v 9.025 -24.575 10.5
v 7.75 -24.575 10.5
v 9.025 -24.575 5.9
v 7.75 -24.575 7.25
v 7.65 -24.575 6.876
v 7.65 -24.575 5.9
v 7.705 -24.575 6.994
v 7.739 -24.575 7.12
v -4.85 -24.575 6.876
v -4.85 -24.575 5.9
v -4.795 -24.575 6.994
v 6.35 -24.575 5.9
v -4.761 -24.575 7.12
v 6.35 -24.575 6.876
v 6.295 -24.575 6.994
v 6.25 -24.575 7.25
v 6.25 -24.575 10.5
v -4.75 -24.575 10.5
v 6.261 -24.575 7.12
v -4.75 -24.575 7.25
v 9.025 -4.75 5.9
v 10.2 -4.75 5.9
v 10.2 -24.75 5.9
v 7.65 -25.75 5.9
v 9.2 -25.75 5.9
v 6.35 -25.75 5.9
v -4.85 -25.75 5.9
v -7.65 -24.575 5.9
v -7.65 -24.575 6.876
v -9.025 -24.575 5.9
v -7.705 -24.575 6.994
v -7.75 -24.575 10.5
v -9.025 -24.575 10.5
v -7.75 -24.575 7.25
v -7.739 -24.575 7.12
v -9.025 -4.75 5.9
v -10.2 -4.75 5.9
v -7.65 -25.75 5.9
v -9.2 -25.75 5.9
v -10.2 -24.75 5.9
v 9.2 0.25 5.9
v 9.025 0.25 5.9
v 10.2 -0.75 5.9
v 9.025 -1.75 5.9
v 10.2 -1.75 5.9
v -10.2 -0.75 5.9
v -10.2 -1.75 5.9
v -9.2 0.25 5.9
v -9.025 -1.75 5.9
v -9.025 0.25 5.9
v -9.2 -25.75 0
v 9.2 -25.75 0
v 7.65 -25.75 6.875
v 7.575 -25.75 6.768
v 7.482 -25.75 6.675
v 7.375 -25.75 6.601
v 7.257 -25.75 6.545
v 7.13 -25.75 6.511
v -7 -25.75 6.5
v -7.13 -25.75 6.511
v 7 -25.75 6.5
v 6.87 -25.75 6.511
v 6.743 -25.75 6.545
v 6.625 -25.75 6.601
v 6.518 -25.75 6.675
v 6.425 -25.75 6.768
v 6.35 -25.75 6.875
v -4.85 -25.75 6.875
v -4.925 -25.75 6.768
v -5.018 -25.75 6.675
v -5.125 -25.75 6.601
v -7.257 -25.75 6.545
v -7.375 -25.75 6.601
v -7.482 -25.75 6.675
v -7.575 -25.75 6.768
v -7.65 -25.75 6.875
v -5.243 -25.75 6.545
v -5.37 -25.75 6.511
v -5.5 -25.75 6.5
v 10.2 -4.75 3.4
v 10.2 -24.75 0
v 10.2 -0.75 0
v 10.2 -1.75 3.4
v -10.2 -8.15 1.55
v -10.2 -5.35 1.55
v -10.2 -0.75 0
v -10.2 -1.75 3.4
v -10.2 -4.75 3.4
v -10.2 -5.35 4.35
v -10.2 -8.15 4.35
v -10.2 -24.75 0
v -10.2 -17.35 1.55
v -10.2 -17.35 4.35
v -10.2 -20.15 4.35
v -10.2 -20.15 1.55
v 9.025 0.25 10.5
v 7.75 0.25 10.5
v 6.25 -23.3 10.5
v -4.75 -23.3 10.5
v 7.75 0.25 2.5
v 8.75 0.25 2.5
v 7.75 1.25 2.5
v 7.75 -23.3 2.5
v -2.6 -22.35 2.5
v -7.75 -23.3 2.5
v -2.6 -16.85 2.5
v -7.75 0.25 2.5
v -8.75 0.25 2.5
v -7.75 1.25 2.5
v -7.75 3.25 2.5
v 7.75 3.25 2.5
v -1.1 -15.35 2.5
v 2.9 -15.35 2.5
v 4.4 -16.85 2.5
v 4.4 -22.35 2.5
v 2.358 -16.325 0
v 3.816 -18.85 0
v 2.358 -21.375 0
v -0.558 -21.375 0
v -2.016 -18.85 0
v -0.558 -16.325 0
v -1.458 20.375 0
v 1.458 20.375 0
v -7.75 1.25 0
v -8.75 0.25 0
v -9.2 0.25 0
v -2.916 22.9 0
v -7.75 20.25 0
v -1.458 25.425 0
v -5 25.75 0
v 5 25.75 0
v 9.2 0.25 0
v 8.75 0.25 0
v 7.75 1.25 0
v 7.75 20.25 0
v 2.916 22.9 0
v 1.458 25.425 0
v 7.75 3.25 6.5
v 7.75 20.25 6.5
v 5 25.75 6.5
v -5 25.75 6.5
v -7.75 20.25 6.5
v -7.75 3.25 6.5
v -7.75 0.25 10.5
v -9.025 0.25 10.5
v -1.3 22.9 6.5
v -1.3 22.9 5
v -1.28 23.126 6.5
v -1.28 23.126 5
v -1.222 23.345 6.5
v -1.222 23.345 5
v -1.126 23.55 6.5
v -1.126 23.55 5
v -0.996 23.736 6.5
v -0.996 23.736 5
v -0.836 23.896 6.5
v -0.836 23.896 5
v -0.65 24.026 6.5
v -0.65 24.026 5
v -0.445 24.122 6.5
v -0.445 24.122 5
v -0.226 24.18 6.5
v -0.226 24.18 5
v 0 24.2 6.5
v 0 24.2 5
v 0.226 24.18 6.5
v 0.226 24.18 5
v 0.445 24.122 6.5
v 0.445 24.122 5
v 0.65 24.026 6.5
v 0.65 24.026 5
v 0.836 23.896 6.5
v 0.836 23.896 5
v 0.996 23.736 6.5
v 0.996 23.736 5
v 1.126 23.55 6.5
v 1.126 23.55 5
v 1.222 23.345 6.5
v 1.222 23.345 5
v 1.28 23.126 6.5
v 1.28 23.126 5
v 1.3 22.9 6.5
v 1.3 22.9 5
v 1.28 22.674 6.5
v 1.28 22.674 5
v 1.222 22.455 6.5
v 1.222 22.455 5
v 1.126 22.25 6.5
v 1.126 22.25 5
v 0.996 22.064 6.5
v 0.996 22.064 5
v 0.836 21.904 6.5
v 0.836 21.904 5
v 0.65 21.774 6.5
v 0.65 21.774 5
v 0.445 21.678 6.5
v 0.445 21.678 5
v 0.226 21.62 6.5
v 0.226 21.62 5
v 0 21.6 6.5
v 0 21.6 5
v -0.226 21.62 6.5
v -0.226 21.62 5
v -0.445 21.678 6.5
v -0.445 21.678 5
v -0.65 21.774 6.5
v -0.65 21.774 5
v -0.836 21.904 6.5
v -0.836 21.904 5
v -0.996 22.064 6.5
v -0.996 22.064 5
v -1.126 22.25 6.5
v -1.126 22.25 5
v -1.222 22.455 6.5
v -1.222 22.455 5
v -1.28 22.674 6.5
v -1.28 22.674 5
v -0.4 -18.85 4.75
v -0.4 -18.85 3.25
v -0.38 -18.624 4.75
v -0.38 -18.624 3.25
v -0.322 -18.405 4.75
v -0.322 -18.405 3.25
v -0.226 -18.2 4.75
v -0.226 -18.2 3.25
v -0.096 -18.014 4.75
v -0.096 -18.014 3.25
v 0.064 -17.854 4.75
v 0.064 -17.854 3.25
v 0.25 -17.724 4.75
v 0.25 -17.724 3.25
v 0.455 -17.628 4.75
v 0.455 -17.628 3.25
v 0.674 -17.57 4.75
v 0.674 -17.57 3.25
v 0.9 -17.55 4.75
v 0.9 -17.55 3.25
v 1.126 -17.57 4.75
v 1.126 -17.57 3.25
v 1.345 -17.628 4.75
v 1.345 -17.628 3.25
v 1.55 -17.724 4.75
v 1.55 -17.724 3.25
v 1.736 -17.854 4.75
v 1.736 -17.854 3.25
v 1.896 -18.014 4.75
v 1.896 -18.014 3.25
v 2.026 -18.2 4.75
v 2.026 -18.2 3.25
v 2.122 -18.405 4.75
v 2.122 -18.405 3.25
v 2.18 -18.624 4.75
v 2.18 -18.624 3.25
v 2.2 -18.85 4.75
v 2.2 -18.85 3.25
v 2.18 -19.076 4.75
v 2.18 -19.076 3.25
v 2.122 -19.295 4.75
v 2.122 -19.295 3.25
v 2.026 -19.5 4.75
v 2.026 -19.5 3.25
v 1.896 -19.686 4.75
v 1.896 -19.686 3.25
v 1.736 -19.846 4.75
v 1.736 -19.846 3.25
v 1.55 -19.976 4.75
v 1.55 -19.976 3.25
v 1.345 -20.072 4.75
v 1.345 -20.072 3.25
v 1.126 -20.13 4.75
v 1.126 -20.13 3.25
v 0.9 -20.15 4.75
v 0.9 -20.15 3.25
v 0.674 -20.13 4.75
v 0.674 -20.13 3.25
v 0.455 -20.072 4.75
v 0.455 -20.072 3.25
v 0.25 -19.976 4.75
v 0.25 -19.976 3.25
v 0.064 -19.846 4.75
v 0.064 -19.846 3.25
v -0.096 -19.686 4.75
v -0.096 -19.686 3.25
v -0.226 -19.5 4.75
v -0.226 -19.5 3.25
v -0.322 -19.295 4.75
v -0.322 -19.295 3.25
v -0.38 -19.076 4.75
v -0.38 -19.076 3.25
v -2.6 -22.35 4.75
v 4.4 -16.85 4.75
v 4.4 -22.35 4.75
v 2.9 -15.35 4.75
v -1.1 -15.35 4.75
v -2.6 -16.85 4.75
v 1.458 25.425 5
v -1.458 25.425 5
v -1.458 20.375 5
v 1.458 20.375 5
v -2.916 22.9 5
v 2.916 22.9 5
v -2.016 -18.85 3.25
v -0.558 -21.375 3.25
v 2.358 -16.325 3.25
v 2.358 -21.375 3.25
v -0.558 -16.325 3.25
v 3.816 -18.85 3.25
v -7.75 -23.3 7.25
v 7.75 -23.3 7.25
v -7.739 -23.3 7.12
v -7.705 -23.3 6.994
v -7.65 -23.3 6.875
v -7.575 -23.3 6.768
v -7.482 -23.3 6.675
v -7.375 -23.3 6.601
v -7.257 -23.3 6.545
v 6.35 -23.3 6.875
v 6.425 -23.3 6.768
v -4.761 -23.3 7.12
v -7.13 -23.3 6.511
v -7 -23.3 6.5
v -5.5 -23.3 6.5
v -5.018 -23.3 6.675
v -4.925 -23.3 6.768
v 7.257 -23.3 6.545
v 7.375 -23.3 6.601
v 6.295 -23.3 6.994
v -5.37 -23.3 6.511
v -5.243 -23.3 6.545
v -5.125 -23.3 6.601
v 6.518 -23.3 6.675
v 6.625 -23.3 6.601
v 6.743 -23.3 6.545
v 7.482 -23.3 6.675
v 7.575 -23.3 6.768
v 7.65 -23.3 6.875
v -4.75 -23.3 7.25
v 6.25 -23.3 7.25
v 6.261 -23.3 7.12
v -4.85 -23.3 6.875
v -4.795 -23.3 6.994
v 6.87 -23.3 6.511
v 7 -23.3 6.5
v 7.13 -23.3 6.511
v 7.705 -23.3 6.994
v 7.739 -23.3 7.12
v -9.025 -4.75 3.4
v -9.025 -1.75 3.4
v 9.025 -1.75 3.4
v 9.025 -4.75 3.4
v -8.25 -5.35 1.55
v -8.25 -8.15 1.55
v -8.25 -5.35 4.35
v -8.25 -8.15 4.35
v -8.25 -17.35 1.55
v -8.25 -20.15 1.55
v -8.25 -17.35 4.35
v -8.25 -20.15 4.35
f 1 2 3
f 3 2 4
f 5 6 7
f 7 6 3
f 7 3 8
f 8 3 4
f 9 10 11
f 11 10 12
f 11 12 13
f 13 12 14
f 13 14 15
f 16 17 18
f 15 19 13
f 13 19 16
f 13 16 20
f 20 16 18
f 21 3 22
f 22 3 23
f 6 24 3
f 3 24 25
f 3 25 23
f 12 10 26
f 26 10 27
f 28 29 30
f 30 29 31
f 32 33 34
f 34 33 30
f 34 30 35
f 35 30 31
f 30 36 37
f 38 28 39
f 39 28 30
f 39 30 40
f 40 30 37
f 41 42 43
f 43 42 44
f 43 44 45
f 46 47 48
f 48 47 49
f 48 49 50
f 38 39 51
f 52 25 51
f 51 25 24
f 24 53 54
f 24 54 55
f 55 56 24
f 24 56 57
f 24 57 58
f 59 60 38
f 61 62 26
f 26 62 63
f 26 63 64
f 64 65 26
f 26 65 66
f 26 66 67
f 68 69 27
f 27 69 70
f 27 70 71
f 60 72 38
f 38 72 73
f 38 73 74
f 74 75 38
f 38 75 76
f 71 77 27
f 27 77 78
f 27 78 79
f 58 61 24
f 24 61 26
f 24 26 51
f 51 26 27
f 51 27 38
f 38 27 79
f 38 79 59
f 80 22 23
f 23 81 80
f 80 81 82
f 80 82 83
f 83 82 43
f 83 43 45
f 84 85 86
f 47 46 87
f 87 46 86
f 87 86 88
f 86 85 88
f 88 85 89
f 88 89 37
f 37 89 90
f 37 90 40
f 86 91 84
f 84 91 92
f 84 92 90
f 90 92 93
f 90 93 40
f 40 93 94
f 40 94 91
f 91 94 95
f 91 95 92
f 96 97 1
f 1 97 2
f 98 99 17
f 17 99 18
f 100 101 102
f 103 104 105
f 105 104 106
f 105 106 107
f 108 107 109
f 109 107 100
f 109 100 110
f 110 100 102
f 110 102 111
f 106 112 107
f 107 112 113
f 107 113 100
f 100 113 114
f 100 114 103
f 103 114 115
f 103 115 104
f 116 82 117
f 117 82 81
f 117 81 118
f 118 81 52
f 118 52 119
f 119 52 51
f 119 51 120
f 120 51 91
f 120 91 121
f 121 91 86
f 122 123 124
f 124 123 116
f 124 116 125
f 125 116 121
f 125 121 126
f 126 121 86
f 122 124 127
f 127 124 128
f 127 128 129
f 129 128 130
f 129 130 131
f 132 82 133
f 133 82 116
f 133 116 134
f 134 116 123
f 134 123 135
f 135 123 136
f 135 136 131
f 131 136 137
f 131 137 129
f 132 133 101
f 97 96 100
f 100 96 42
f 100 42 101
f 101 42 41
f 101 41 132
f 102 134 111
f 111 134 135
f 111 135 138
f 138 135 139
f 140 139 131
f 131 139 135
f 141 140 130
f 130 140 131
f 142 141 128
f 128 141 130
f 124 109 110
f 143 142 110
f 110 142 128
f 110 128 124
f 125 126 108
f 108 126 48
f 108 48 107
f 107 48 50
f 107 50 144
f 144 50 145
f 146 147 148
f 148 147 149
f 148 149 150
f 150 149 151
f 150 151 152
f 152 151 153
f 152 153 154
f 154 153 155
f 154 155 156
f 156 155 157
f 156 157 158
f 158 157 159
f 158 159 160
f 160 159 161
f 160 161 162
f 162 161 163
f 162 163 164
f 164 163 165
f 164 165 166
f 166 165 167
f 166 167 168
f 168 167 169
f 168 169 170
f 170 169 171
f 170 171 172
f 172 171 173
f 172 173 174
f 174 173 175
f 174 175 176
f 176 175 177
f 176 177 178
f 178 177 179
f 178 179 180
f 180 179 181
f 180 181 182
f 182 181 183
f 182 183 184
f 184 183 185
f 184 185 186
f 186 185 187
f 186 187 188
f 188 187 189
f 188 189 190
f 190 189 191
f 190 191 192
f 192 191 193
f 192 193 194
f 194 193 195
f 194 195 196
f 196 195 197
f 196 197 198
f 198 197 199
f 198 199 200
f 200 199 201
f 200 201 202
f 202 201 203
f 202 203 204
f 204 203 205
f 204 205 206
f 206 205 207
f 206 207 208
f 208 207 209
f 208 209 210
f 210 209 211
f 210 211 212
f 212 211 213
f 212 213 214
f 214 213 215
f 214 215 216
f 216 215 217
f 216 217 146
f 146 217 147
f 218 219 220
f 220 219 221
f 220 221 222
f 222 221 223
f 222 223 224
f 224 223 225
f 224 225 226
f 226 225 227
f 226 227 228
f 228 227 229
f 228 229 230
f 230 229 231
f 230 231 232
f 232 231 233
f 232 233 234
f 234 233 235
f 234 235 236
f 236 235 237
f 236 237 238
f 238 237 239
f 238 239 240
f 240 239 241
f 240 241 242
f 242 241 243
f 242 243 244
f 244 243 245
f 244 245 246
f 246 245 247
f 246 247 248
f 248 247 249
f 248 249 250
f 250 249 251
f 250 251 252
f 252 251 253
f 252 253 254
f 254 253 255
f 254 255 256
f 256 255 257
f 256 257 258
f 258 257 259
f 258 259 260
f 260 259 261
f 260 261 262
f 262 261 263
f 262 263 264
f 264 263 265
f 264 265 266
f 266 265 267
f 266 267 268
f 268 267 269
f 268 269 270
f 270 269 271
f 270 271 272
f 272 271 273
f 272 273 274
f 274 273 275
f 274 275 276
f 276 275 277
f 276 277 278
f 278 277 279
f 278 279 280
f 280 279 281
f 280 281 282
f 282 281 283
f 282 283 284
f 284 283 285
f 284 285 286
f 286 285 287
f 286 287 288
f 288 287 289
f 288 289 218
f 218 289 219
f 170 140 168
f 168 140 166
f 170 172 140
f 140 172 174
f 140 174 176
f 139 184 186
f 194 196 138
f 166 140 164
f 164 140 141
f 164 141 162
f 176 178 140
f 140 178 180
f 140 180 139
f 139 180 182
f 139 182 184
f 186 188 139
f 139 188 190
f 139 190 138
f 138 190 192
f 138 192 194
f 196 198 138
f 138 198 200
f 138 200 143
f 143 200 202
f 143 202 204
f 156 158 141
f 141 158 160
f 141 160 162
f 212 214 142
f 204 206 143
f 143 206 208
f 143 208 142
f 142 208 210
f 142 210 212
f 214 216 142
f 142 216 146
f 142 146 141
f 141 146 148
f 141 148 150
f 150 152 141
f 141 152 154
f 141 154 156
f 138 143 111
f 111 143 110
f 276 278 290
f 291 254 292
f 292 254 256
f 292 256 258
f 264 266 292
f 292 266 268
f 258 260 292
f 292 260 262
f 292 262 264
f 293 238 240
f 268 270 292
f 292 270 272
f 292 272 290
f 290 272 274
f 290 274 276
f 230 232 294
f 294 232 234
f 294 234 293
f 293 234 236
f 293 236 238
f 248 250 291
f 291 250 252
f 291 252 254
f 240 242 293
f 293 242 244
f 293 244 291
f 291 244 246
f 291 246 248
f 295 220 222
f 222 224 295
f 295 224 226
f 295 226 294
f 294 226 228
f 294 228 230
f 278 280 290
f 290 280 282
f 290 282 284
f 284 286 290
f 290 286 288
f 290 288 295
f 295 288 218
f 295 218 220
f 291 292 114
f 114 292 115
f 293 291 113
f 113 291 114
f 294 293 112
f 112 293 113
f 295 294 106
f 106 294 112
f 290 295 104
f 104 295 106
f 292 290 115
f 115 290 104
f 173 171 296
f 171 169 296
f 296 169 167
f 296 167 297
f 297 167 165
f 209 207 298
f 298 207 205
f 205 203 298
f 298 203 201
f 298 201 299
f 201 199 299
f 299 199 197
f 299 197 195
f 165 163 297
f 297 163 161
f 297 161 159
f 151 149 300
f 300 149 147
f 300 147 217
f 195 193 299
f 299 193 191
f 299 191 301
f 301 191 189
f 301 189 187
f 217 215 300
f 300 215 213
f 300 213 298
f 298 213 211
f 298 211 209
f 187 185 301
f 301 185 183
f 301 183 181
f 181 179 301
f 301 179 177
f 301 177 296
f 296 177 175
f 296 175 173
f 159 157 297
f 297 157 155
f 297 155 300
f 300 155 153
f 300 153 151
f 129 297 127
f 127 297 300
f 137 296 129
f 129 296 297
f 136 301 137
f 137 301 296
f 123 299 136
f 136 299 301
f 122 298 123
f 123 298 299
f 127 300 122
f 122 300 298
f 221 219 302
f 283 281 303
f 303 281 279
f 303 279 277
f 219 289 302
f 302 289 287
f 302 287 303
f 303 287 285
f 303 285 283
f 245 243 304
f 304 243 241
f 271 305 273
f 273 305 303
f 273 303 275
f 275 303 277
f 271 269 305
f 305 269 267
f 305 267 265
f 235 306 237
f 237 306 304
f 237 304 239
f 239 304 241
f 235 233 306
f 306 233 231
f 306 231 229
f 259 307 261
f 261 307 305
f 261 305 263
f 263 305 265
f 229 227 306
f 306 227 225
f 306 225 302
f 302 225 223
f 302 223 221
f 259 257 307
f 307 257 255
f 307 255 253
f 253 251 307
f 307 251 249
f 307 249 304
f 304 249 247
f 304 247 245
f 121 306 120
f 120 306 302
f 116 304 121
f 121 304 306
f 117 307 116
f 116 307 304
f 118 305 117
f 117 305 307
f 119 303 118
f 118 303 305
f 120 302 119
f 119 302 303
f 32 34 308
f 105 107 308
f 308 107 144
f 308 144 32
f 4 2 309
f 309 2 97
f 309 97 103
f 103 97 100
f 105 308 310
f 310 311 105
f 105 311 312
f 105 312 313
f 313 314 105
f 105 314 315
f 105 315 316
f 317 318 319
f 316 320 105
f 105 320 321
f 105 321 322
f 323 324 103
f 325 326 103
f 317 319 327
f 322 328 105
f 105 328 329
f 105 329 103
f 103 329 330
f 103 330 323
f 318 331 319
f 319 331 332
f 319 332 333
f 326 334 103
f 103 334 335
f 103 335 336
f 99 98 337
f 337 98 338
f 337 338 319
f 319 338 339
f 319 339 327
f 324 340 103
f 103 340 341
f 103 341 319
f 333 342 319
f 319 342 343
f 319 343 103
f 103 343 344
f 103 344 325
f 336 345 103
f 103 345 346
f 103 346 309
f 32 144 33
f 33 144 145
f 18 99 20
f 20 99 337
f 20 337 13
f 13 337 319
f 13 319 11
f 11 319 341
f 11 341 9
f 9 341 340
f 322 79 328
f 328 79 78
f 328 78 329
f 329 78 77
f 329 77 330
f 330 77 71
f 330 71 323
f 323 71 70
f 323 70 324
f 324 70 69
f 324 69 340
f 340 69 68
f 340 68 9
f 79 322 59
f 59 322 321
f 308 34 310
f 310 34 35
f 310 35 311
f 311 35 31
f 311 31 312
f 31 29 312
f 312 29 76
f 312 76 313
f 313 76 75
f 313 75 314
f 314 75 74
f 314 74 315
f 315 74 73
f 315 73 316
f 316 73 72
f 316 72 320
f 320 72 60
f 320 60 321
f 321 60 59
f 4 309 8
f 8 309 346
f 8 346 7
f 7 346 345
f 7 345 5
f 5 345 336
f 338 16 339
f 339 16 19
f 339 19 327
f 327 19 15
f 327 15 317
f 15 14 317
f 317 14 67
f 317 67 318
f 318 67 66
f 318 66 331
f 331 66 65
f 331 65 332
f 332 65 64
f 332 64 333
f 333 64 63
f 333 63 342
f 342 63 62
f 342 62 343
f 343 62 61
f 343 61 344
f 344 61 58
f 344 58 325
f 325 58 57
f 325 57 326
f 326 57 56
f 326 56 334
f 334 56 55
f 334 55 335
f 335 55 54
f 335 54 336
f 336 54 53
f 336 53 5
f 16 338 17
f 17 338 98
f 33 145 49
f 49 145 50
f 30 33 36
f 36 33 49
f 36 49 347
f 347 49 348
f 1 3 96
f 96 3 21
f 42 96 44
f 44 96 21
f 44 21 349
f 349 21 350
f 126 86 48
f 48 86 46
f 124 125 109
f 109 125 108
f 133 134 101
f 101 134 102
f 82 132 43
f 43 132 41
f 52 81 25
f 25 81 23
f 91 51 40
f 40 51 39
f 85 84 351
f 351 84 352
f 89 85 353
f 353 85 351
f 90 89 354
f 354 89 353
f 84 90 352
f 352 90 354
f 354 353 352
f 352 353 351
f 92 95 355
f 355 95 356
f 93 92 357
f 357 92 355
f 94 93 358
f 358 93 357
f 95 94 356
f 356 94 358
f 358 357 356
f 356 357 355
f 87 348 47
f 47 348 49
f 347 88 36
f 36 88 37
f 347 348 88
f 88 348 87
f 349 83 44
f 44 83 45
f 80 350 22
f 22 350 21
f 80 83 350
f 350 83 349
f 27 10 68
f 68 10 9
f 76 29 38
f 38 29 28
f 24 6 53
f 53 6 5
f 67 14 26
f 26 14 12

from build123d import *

# Parameters (mm, degrees)
SKETCH1_R           = 1.3
BOSS_EXTRUDE1_DEPTH = 2.5
SKETCH2_R           = 1.3
BOSS_EXTRUDE2_DEPTH = 4
SKETCH3_R           = 1.3
BOSS_EXTRUDE3_DEPTH = 2.25
CUT_EXTRUDE1_DEPTH  = 5
CUT_EXTRUDE2_DEPTH  = 3.25
BOSS_EXTRUDE4_DEPTH = 8
CUT_EXTRUDE3_REACH  = 55.54
CUT_EXTRUDE4_DEPTH  = 4.6
CHAMFER1_SIZE       = 1
SKETCH10_W          = 2.8
SKETCH10_H          = 2.8
CUT_EXTRUDE6_DEPTH  = 1.95
SKETCH12_W          = 1.175
SKETCH12_H          = 3
CUT_EXTRUDE7_DEPTH  = 2.5
BOSS_EXTRUDE6_START = 1.175
BOSS_EXTRUDE6_DEPTH = 1.175


with BuildPart() as part:
    # Sketch1 → Boss-Extrude1 (new body)
    with BuildSketch(Plane.XY):
        Polygon((-5, 25.75), (5, 25.75), (7.75, 20.25), (7.75, 0.25), (10.2, 0.25), (10.2, -25.75), (-10.2, -25.75), (-10.2, 0.25), (-7.75, 0.25), (-7.75, 20.25), align=None)
        with Locations((0, 22.9)):
            Circle(SKETCH1_R, mode=Mode.SUBTRACT)
        with Locations((0.9, -18.85)):
            Circle(SKETCH1_R, mode=Mode.SUBTRACT)
    extrude(amount=BOSS_EXTRUDE1_DEPTH)

    # Sketch2 → Boss-Extrude2 (add)
    with BuildSketch(Plane.XY.offset(2.5)):
        Polygon((-7.75, 3.25), (7.75, 3.25), (7.75, 20.25), (5, 25.75), (-5, 25.75), (-7.75, 20.25), align=None)
        with Locations((0, 22.9)):
            Circle(SKETCH2_R, mode=Mode.SUBTRACT)
    extrude(amount=BOSS_EXTRUDE2_DEPTH)

    # Sketch3 → Boss-Extrude3 (add)
    with BuildSketch(Plane.XY.offset(2.5)):
        Polygon((-1.1, -15.35), (2.9, -15.35), (4.4, -16.85), (4.4, -22.35), (-2.6, -22.35), (-2.6, -16.85), align=None)
        with Locations((0.9, -18.85)):
            Circle(SKETCH3_R, mode=Mode.SUBTRACT)
    extrude(amount=BOSS_EXTRUDE3_DEPTH)

    # Sketch4 → Cut-Extrude1 (cut)
    with BuildSketch(Plane(origin=(0, 0, 0), x_dir=(-1, 0, 0), z_dir=(0, 0, -1))):
        Polygon((2.915618859, 22.9), (1.45780943, 25.425), (-1.45780943, 25.425), (-2.915618859, 22.9), (-1.45780943, 20.375), (1.45780943, 20.375), align=None)
    extrude(amount=-CUT_EXTRUDE1_DEPTH, mode=Mode.SUBTRACT)

    # Sketch5 → Cut-Extrude2 (cut)
    with BuildSketch(Plane(origin=(0, 0, 0), x_dir=(-1, 0, 0), z_dir=(0, 0, -1))):
        Polygon((2.015618859, -18.85), (0.55780943, -16.325), (-2.35780943, -16.325), (-3.815618859, -18.85), (-2.35780943, -21.375), (0.55780943, -21.375), align=None)
    extrude(amount=-CUT_EXTRUDE2_DEPTH, mode=Mode.SUBTRACT)

    # Sketch6 → Boss-Extrude4 (add)
    with BuildSketch(Plane.XY.offset(2.5)):
        Polygon((-7.75, 0.25), (-10.2, 0.25), (-10.2, -25.75), (10.2, -25.75), (10.2, 0.25), (7.75, 0.25), (7.75, -23.3), (-7.75, -23.3), align=None)
    extrude(amount=BOSS_EXTRUDE4_DEPTH)

    # Sketch8 → Cut-Extrude3 (cut, up to next)
    with BuildSketch(Plane.XZ.offset(25.75), mode=Mode.PRIVATE) as cut_extrude3_sk1:
        with BuildLine():
            Line((-7.75, 10.5), (-7.75, 7.25))
            ThreePointArc((-7.75, 7.25), (-7.530330086, 6.719669914), (-7, 6.5))
            Line((-7, 6.5), (-5.5, 6.5))
            ThreePointArc((-5.5, 6.5), (-4.969669914, 6.719669914), (-4.75, 7.25))
            Line((-4.75, 7.25), (-4.75, 10.5))
            Line((-4.75, 10.5), (-7.75, 10.5))
        make_face()
    cut_extrude3_tool1 = extrude(cut_extrude3_sk1.sketch, amount=-CUT_EXTRUDE3_REACH, mode=Mode.PRIVATE) & part.part
    # Sketch8 → Cut-Extrude3 (cut, up to next)
    with BuildSketch(Plane.XZ.offset(25.75), mode=Mode.PRIVATE) as cut_extrude3_sk2:
        with BuildLine():
            Line((6.25, 10.5), (6.25, 7.25))
            ThreePointArc((6.25, 7.25), (7, 6.5), (7.75, 7.25))
            Line((7.75, 7.25), (7.75, 10.5))
            Line((7.75, 10.5), (6.25, 10.5))
        make_face()
    cut_extrude3_tool2 = extrude(cut_extrude3_sk2.sketch, amount=-CUT_EXTRUDE3_REACH, mode=Mode.PRIVATE) & part.part
    add(cut_extrude3_tool1.solids().sort_by_distance((-6.25, -25.75, 8.537624))[0], mode=Mode.SUBTRACT)
    add(cut_extrude3_tool2.solids().sort_by_distance((7, -25.75, 8.576826))[0], mode=Mode.SUBTRACT)

    # Sketch9 → Cut-Extrude4 (cut)
    with BuildSketch(Plane.XY.offset(10.5)):
        Polygon((-9.025, 0.25), (-10.2, 0.25), (-10.2, -25.75), (10.2, -25.75), (10.2, 0.25), (9.025, 0.25), (9.025, -24.575), (-9.025, -24.575), align=None)
    extrude(amount=-CUT_EXTRUDE4_DEPTH, mode=Mode.SUBTRACT)

    # Chamfer1
    chamfer1_edges = [part.edges().sort_by_distance(p)[0] for p in [
        (-7.75, 0.25, 1.25),
        (7.75, 0.25, 1.25),
        (-10.2, -25.75, 2.95),
        (-10.2, 0.25, 2.95),
        (10.2, 0.25, 2.95),
        (10.2, -25.75, 2.95),
    ]]
    chamfer(chamfer1_edges, length=CHAMFER1_SIZE)

    # Sketch10 → Cut-Extrude6 (cut)
    with BuildSketch(Plane.ZY.offset(10.2)):
        with Locations((2.95, -6.75)):
            Rectangle(SKETCH10_W, SKETCH10_H)
        with Locations((2.95, -18.75)):
            Rectangle(SKETCH10_W, SKETCH10_H)
    extrude(amount=-CUT_EXTRUDE6_DEPTH, mode=Mode.SUBTRACT)

    # Sketch12 → Cut-Extrude7 (cut)
    with BuildSketch(Plane.XY.offset(5.9)):
        with Locations((-9.6125, -3.25)):
            Rectangle(SKETCH12_W, SKETCH12_H)
        with Locations((9.6125, -3.25)):
            Rectangle(SKETCH12_W, SKETCH12_H)
    extrude(amount=-CUT_EXTRUDE7_DEPTH, mode=Mode.SUBTRACT)

    # Sketch13 → Boss-Extrude6 (add)
    with BuildSketch(Plane.XZ.offset(24.575).offset(BOSS_EXTRUDE6_START)):
        with BuildLine():
            Line((-7.65, 6.875834261), (-7.65, 5.9))
            Line((-7.65, 5.9), (-4.85, 5.9))
            Line((-4.85, 5.9), (-4.85, 6.875834261))
            ThreePointArc((-4.85, 6.875834261), (-5.124583101, 6.600721822), (-5.5, 6.5))
            Line((-5.5, 6.5), (-7, 6.5))
            ThreePointArc((-7, 6.5), (-7.375416899, 6.600721822), (-7.65, 6.875834261))
        make_face()
        with BuildLine():
            Line((6.35, 6.875834261), (6.35, 5.9))
            Line((6.35, 5.9), (7.65, 5.9))
            Line((7.65, 5.9), (7.65, 6.875834261))
            ThreePointArc((7.65, 6.875834261), (7, 6.5), (6.35, 6.875834261))
        make_face()
    extrude(amount=-BOSS_EXTRUDE6_DEPTH)


solid = part.part
